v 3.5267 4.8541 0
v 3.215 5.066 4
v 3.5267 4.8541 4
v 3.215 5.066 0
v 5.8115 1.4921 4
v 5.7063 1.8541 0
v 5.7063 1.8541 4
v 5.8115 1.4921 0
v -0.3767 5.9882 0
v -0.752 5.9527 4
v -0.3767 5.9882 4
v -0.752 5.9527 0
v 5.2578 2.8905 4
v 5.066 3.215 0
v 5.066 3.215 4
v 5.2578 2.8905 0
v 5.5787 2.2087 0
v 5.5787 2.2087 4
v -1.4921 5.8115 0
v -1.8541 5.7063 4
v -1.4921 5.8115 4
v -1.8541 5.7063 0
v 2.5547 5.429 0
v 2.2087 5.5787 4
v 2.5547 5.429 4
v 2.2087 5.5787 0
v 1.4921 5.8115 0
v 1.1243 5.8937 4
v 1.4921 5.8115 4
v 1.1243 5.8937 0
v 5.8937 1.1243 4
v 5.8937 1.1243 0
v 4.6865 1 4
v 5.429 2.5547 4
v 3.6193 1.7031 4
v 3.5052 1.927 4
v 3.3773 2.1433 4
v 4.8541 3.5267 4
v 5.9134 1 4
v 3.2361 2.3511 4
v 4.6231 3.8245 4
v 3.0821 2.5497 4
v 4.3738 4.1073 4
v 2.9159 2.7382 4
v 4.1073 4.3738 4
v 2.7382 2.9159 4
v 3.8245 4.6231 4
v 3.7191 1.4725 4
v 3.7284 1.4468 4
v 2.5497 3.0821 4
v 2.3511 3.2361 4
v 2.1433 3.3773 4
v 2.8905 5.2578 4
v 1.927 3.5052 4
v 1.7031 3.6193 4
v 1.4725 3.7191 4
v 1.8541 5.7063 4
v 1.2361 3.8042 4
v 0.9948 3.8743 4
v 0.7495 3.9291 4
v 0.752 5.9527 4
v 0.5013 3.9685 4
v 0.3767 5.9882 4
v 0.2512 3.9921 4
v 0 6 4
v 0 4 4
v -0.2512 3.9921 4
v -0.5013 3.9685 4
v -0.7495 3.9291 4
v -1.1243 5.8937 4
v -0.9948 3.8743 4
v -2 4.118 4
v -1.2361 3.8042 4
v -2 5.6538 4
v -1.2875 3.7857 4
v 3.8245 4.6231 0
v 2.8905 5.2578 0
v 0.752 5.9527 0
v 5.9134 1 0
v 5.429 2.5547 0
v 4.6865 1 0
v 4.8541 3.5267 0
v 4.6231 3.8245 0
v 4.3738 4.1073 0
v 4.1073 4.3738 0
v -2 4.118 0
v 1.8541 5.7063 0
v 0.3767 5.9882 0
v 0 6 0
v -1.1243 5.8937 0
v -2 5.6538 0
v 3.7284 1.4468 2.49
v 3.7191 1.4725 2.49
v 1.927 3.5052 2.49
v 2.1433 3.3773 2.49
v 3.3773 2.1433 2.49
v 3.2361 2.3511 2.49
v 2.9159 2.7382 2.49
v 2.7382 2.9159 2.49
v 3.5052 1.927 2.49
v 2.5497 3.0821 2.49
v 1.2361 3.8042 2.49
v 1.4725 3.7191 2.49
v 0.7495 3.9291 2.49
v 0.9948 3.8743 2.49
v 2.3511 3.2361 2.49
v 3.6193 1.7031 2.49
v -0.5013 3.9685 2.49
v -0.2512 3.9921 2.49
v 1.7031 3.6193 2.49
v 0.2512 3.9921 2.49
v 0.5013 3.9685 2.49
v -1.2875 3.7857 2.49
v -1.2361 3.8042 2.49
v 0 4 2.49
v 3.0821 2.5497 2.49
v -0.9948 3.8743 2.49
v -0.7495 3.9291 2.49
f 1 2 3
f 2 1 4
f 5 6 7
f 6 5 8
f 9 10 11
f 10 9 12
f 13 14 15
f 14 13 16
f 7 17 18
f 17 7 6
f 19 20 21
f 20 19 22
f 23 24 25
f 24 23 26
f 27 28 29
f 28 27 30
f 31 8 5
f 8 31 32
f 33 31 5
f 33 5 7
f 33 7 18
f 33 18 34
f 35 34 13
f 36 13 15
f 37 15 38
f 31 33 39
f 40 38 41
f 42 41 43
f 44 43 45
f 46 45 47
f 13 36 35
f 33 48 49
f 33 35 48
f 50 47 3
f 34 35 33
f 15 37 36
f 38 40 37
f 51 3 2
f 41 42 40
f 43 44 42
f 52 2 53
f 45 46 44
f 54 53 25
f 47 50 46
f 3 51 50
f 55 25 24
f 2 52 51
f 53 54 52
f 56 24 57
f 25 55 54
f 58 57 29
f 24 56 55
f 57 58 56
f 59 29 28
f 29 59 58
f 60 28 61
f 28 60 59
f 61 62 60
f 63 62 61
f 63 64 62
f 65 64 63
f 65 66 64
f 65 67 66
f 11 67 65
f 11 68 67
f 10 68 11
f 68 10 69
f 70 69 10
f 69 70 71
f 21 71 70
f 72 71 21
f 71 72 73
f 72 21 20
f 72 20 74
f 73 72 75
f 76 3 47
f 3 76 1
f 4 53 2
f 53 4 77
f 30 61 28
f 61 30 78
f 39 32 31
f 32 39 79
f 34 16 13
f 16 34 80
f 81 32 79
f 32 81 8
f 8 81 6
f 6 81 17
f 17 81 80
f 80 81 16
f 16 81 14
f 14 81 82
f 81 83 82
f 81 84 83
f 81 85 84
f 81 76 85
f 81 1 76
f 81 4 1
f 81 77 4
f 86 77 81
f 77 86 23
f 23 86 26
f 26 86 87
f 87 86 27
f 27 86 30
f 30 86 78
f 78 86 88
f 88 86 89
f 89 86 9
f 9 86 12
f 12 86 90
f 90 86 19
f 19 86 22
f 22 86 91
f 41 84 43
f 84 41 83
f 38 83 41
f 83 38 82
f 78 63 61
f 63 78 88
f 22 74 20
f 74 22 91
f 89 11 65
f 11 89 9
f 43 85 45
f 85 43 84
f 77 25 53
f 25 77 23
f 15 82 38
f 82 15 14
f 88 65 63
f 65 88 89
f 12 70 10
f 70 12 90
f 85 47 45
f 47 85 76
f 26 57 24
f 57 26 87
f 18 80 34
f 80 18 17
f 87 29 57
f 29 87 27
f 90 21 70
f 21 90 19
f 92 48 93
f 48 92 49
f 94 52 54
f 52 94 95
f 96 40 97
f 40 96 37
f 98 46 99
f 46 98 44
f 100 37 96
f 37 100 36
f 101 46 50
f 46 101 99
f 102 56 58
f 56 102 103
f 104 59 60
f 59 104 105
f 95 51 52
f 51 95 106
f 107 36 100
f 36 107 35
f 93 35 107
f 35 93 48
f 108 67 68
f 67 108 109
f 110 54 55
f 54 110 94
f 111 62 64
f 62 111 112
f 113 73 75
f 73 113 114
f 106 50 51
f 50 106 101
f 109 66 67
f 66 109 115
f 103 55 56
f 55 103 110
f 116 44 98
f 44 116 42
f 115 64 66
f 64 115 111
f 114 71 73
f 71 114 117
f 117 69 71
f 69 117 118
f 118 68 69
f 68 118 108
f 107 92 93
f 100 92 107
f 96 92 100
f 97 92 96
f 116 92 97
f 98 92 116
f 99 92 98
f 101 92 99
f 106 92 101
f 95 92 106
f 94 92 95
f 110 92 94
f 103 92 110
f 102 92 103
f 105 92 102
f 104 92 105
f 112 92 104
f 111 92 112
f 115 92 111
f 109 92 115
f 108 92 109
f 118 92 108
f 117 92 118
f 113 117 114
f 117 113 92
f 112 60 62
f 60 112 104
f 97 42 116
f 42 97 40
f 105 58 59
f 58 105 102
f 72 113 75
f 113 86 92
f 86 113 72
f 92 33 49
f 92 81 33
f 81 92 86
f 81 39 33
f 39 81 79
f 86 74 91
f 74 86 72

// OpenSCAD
$fn = 100;

difference() {

    difference() {
        cylinder(4,6,6);
        translate([0,0,2.49])
            cylinder(1.52,4,4);
    }
    
    translate([0,-5,0])
        cube([20,10,10],center=true);
    
    translate([-5,0,0])
    rotate([0,0,155])
        cube([20,10,10],center=true);
    
    cube([10,1,10]);
    
    #translate([-4,0,0])
        cube([2,10,10]);
}
